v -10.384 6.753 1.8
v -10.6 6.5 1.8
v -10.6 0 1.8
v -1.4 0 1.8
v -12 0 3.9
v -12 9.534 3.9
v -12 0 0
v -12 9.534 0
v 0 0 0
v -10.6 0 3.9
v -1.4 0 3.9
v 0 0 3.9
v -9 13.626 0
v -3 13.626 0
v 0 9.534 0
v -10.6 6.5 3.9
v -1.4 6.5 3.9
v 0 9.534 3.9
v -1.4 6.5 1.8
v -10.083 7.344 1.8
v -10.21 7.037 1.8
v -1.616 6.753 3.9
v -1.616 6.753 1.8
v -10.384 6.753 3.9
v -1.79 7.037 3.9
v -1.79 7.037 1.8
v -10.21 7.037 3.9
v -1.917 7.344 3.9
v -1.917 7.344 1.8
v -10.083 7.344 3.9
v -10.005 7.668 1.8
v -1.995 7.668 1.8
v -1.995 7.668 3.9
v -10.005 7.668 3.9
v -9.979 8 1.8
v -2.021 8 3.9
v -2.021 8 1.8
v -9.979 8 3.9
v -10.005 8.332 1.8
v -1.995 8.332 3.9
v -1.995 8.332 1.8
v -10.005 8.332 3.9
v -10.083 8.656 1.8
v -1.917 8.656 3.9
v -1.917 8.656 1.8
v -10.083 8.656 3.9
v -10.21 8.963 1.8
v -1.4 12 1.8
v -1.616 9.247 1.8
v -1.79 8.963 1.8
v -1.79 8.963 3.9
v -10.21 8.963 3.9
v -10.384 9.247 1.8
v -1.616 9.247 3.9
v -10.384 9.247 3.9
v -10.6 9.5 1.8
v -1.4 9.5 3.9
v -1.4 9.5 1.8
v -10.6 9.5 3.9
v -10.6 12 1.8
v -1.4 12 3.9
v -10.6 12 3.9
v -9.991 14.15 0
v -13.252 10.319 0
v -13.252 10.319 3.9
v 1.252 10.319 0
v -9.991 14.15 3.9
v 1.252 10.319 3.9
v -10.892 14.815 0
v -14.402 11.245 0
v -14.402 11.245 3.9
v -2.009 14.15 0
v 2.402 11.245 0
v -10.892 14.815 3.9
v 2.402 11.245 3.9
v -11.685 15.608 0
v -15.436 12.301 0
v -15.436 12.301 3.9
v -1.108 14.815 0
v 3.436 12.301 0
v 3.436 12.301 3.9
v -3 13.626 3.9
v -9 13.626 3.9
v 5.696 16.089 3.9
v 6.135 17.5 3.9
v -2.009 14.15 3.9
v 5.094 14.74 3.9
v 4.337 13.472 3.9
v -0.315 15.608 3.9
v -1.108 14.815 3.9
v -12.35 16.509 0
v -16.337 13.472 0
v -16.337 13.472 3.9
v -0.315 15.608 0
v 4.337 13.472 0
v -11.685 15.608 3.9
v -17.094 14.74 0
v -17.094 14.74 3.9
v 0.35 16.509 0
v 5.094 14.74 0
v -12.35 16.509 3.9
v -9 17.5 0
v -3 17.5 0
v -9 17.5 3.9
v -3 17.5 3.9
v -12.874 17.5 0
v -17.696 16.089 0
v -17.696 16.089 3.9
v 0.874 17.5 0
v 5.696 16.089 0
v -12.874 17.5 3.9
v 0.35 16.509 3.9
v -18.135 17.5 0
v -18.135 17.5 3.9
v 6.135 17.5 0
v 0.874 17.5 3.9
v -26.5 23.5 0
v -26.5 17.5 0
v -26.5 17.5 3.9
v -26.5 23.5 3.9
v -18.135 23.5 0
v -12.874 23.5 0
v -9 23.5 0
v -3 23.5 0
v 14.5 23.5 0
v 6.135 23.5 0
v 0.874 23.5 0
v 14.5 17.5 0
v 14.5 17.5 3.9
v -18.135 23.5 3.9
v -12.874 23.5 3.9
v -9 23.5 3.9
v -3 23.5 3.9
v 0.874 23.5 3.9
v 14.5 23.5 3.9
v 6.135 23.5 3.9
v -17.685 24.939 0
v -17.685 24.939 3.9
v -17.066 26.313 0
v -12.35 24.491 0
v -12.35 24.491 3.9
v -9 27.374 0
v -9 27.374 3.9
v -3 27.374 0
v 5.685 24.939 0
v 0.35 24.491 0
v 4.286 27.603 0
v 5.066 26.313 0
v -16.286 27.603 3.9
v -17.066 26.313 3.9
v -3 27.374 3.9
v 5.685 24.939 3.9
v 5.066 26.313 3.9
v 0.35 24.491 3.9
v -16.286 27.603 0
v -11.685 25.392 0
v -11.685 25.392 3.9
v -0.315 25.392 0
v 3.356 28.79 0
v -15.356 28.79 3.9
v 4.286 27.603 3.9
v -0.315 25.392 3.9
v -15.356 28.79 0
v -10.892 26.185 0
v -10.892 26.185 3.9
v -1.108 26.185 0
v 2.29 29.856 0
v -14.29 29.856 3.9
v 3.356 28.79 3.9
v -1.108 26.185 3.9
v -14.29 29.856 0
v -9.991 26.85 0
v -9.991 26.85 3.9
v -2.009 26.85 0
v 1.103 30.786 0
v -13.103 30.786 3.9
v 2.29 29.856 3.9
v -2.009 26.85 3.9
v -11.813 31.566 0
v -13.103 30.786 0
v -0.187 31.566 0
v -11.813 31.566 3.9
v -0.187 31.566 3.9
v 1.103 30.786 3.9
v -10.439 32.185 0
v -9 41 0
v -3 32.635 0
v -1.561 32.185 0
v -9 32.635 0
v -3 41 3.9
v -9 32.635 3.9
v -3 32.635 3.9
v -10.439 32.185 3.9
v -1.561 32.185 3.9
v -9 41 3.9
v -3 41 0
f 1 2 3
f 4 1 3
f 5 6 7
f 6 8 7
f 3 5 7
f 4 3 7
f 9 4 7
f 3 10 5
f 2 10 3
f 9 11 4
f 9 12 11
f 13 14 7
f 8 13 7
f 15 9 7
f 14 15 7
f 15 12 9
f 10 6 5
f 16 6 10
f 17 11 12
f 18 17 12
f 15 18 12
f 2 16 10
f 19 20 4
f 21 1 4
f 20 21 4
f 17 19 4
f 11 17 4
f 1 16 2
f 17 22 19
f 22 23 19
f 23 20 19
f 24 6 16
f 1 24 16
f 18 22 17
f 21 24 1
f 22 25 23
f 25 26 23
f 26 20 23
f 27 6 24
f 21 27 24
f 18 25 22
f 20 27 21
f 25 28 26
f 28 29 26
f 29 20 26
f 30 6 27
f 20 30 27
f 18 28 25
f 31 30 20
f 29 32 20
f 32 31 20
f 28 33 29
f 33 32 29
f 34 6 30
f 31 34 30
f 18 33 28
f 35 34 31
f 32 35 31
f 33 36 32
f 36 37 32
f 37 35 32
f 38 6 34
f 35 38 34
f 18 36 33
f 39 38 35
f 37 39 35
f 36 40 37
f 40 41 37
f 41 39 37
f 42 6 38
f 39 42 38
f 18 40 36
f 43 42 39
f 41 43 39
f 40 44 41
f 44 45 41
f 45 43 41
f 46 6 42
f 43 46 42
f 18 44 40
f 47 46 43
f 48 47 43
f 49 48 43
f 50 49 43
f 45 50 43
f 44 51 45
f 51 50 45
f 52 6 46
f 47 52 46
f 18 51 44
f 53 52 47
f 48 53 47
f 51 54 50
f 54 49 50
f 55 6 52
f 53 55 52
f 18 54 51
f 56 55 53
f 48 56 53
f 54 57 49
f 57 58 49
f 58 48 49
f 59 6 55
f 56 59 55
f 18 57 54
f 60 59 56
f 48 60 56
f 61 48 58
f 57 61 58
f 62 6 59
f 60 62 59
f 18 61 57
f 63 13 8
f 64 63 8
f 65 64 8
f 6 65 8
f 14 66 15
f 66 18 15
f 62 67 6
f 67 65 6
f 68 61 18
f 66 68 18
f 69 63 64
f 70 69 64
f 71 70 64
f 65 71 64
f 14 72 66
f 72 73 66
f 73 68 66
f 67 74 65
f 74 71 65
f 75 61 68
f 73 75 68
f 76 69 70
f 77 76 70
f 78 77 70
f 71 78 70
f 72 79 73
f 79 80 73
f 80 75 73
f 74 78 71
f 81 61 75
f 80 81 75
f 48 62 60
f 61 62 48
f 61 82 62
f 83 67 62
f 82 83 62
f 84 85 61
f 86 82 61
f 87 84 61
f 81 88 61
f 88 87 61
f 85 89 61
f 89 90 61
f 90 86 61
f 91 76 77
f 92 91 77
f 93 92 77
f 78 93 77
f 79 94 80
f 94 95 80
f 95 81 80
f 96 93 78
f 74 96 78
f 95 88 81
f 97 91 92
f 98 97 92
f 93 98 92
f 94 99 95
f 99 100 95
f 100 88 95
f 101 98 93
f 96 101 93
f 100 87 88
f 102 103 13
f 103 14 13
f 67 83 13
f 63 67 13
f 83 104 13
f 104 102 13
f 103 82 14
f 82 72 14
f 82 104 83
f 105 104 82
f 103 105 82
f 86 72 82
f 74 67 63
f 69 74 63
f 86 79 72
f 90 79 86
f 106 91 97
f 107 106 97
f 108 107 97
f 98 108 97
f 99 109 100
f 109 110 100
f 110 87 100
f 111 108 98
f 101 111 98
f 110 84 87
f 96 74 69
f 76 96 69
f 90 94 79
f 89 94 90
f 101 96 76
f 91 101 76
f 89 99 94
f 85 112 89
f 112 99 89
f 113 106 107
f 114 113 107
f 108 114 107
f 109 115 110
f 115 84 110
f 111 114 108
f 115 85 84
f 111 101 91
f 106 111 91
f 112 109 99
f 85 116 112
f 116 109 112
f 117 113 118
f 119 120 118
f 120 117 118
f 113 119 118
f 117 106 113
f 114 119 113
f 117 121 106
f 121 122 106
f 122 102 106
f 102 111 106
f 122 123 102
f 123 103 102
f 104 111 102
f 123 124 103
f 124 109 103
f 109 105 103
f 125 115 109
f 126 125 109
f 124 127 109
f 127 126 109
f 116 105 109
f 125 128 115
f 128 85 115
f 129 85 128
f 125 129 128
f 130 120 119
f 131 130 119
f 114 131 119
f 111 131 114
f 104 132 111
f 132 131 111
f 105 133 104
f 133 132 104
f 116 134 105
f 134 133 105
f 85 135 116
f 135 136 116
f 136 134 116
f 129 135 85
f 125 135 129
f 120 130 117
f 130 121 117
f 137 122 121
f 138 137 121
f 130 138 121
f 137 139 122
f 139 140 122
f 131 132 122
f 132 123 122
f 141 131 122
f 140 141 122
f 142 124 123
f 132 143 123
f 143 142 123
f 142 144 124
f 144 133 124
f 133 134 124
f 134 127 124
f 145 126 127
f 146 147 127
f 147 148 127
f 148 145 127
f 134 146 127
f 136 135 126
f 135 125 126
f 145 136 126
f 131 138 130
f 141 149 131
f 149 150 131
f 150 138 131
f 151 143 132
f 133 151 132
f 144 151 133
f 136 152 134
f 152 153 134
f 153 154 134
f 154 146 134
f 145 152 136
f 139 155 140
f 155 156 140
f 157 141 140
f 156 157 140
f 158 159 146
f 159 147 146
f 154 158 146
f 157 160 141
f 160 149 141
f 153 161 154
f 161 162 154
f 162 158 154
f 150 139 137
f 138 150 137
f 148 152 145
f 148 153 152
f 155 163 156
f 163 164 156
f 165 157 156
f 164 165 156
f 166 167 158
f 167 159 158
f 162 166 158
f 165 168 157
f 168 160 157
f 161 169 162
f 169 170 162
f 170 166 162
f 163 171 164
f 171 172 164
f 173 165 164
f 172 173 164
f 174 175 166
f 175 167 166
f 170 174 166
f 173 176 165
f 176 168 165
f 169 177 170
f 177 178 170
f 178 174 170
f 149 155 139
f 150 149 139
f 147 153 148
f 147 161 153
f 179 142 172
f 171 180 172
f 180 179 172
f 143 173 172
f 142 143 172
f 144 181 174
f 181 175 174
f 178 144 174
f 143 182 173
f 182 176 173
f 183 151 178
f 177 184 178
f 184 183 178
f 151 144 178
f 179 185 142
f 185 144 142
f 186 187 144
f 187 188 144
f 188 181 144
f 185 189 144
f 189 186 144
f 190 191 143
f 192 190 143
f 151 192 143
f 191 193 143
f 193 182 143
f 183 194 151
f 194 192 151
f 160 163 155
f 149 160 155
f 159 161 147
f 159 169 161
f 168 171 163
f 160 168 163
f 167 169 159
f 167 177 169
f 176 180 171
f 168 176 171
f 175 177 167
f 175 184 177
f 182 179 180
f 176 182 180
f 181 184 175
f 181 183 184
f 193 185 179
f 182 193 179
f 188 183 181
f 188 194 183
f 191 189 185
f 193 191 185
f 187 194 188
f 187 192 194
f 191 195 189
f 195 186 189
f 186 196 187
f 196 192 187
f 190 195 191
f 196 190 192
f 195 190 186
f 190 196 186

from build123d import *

# Parameters (mm, degrees)
SALIENTE_EXTRUIR1_DEPTH = 3.9
CORTAR_EXTRUIR1_DEPTH   = 2.1


with BuildPart() as part:
    # Croquis1 → Saliente-Extruir1 (new body)
    with BuildSketch(Plane.XY):
        with BuildLine():
            Line((0, 0), (-12, 0))
            Line((-12, 0), (-12, 9.5341439))
            ThreePointArc((-12, 9.5341439), (-15.903544777, 12.873087069), (-18.1346611, 17.5))
            Line((-18.1346611, 17.5), (-26.5, 17.5))
            Line((-26.5, 17.5), (-26.5, 23.5))
            Line((-26.5, 23.5), (-18.1346611, 23.5))
            ThreePointArc((-18.1346611, 23.5), (-14.838834765, 29.338834765), (-9, 32.6346611))
            Line((-9, 32.6346611), (-9, 41))
            Line((-9, 41), (-3, 41))
            Line((-3, 41), (-3, 32.6346611))
            ThreePointArc((-3, 32.6346611), (2.838834765, 29.338834765), (6.1346611, 23.5))
            Line((6.1346611, 23.5), (14.5, 23.5))
            Line((14.5, 23.5), (14.5, 17.5))
            Line((14.5, 17.5), (6.1346611, 17.5))
            ThreePointArc((6.1346611, 17.5), (3.903544777, 12.873087069), (0, 9.5341439))
            Line((0, 9.5341439), (0, 0))
        make_face()
        with BuildLine():
            Line((-9, 23.5), (-9, 27.373863542))
            ThreePointArc((-9, 27.373863542), (-11.303300859, 25.803300859), (-12.873863542, 23.5))
            Line((-12.873863542, 23.5), (-9, 23.5))
        make_face(mode=Mode.SUBTRACT)
        with BuildLine():
            Line((-3, 23.5), (-3, 27.373863542))
            ThreePointArc((-3, 27.373863542), (-0.696699141, 25.803300859), (0.873863542, 23.5))
            Line((0.873863542, 23.5), (-3, 23.5))
        make_face(mode=Mode.SUBTRACT)
        with BuildLine():
            Line((-9, 17.5), (-9, 13.626136458))
            ThreePointArc((-9, 13.626136458), (-11.303300859, 15.196699141), (-12.873863542, 17.5))
            Line((-12.873863542, 17.5), (-9, 17.5))
        make_face(mode=Mode.SUBTRACT)
        with BuildLine():
            Line((-3, 17.5), (-3, 13.626136458))
            ThreePointArc((-3, 13.626136458), (-0.696699141, 15.196699141), (0.873863542, 17.5))
            Line((0.873863542, 17.5), (-3, 17.5))
        make_face(mode=Mode.SUBTRACT)
    extrude(amount=SALIENTE_EXTRUIR1_DEPTH)

    # Croquis2 → Cortar-Extruir1 (cut)
    with BuildSketch(Plane.XY.offset(3.9)):
        with BuildLine():
            Line((-10.6, 0), (-1.4, 0))
            Line((-1.4, 0), (-1.4, 6.5))
            ThreePointArc((-1.4, 6.5), (-2.021320344, 8), (-1.4, 9.5))
            Line((-1.4, 9.5), (-1.4, 12))
            Line((-1.4, 12), (-10.6, 12))
            Line((-10.6, 12), (-10.6, 9.5))
            ThreePointArc((-10.6, 9.5), (-9.978679656, 8), (-10.6, 6.5))
            Line((-10.6, 6.5), (-10.6, 0))
        make_face()
    extrude(amount=-CORTAR_EXTRUIR1_DEPTH, mode=Mode.SUBTRACT)


solid = part.part
